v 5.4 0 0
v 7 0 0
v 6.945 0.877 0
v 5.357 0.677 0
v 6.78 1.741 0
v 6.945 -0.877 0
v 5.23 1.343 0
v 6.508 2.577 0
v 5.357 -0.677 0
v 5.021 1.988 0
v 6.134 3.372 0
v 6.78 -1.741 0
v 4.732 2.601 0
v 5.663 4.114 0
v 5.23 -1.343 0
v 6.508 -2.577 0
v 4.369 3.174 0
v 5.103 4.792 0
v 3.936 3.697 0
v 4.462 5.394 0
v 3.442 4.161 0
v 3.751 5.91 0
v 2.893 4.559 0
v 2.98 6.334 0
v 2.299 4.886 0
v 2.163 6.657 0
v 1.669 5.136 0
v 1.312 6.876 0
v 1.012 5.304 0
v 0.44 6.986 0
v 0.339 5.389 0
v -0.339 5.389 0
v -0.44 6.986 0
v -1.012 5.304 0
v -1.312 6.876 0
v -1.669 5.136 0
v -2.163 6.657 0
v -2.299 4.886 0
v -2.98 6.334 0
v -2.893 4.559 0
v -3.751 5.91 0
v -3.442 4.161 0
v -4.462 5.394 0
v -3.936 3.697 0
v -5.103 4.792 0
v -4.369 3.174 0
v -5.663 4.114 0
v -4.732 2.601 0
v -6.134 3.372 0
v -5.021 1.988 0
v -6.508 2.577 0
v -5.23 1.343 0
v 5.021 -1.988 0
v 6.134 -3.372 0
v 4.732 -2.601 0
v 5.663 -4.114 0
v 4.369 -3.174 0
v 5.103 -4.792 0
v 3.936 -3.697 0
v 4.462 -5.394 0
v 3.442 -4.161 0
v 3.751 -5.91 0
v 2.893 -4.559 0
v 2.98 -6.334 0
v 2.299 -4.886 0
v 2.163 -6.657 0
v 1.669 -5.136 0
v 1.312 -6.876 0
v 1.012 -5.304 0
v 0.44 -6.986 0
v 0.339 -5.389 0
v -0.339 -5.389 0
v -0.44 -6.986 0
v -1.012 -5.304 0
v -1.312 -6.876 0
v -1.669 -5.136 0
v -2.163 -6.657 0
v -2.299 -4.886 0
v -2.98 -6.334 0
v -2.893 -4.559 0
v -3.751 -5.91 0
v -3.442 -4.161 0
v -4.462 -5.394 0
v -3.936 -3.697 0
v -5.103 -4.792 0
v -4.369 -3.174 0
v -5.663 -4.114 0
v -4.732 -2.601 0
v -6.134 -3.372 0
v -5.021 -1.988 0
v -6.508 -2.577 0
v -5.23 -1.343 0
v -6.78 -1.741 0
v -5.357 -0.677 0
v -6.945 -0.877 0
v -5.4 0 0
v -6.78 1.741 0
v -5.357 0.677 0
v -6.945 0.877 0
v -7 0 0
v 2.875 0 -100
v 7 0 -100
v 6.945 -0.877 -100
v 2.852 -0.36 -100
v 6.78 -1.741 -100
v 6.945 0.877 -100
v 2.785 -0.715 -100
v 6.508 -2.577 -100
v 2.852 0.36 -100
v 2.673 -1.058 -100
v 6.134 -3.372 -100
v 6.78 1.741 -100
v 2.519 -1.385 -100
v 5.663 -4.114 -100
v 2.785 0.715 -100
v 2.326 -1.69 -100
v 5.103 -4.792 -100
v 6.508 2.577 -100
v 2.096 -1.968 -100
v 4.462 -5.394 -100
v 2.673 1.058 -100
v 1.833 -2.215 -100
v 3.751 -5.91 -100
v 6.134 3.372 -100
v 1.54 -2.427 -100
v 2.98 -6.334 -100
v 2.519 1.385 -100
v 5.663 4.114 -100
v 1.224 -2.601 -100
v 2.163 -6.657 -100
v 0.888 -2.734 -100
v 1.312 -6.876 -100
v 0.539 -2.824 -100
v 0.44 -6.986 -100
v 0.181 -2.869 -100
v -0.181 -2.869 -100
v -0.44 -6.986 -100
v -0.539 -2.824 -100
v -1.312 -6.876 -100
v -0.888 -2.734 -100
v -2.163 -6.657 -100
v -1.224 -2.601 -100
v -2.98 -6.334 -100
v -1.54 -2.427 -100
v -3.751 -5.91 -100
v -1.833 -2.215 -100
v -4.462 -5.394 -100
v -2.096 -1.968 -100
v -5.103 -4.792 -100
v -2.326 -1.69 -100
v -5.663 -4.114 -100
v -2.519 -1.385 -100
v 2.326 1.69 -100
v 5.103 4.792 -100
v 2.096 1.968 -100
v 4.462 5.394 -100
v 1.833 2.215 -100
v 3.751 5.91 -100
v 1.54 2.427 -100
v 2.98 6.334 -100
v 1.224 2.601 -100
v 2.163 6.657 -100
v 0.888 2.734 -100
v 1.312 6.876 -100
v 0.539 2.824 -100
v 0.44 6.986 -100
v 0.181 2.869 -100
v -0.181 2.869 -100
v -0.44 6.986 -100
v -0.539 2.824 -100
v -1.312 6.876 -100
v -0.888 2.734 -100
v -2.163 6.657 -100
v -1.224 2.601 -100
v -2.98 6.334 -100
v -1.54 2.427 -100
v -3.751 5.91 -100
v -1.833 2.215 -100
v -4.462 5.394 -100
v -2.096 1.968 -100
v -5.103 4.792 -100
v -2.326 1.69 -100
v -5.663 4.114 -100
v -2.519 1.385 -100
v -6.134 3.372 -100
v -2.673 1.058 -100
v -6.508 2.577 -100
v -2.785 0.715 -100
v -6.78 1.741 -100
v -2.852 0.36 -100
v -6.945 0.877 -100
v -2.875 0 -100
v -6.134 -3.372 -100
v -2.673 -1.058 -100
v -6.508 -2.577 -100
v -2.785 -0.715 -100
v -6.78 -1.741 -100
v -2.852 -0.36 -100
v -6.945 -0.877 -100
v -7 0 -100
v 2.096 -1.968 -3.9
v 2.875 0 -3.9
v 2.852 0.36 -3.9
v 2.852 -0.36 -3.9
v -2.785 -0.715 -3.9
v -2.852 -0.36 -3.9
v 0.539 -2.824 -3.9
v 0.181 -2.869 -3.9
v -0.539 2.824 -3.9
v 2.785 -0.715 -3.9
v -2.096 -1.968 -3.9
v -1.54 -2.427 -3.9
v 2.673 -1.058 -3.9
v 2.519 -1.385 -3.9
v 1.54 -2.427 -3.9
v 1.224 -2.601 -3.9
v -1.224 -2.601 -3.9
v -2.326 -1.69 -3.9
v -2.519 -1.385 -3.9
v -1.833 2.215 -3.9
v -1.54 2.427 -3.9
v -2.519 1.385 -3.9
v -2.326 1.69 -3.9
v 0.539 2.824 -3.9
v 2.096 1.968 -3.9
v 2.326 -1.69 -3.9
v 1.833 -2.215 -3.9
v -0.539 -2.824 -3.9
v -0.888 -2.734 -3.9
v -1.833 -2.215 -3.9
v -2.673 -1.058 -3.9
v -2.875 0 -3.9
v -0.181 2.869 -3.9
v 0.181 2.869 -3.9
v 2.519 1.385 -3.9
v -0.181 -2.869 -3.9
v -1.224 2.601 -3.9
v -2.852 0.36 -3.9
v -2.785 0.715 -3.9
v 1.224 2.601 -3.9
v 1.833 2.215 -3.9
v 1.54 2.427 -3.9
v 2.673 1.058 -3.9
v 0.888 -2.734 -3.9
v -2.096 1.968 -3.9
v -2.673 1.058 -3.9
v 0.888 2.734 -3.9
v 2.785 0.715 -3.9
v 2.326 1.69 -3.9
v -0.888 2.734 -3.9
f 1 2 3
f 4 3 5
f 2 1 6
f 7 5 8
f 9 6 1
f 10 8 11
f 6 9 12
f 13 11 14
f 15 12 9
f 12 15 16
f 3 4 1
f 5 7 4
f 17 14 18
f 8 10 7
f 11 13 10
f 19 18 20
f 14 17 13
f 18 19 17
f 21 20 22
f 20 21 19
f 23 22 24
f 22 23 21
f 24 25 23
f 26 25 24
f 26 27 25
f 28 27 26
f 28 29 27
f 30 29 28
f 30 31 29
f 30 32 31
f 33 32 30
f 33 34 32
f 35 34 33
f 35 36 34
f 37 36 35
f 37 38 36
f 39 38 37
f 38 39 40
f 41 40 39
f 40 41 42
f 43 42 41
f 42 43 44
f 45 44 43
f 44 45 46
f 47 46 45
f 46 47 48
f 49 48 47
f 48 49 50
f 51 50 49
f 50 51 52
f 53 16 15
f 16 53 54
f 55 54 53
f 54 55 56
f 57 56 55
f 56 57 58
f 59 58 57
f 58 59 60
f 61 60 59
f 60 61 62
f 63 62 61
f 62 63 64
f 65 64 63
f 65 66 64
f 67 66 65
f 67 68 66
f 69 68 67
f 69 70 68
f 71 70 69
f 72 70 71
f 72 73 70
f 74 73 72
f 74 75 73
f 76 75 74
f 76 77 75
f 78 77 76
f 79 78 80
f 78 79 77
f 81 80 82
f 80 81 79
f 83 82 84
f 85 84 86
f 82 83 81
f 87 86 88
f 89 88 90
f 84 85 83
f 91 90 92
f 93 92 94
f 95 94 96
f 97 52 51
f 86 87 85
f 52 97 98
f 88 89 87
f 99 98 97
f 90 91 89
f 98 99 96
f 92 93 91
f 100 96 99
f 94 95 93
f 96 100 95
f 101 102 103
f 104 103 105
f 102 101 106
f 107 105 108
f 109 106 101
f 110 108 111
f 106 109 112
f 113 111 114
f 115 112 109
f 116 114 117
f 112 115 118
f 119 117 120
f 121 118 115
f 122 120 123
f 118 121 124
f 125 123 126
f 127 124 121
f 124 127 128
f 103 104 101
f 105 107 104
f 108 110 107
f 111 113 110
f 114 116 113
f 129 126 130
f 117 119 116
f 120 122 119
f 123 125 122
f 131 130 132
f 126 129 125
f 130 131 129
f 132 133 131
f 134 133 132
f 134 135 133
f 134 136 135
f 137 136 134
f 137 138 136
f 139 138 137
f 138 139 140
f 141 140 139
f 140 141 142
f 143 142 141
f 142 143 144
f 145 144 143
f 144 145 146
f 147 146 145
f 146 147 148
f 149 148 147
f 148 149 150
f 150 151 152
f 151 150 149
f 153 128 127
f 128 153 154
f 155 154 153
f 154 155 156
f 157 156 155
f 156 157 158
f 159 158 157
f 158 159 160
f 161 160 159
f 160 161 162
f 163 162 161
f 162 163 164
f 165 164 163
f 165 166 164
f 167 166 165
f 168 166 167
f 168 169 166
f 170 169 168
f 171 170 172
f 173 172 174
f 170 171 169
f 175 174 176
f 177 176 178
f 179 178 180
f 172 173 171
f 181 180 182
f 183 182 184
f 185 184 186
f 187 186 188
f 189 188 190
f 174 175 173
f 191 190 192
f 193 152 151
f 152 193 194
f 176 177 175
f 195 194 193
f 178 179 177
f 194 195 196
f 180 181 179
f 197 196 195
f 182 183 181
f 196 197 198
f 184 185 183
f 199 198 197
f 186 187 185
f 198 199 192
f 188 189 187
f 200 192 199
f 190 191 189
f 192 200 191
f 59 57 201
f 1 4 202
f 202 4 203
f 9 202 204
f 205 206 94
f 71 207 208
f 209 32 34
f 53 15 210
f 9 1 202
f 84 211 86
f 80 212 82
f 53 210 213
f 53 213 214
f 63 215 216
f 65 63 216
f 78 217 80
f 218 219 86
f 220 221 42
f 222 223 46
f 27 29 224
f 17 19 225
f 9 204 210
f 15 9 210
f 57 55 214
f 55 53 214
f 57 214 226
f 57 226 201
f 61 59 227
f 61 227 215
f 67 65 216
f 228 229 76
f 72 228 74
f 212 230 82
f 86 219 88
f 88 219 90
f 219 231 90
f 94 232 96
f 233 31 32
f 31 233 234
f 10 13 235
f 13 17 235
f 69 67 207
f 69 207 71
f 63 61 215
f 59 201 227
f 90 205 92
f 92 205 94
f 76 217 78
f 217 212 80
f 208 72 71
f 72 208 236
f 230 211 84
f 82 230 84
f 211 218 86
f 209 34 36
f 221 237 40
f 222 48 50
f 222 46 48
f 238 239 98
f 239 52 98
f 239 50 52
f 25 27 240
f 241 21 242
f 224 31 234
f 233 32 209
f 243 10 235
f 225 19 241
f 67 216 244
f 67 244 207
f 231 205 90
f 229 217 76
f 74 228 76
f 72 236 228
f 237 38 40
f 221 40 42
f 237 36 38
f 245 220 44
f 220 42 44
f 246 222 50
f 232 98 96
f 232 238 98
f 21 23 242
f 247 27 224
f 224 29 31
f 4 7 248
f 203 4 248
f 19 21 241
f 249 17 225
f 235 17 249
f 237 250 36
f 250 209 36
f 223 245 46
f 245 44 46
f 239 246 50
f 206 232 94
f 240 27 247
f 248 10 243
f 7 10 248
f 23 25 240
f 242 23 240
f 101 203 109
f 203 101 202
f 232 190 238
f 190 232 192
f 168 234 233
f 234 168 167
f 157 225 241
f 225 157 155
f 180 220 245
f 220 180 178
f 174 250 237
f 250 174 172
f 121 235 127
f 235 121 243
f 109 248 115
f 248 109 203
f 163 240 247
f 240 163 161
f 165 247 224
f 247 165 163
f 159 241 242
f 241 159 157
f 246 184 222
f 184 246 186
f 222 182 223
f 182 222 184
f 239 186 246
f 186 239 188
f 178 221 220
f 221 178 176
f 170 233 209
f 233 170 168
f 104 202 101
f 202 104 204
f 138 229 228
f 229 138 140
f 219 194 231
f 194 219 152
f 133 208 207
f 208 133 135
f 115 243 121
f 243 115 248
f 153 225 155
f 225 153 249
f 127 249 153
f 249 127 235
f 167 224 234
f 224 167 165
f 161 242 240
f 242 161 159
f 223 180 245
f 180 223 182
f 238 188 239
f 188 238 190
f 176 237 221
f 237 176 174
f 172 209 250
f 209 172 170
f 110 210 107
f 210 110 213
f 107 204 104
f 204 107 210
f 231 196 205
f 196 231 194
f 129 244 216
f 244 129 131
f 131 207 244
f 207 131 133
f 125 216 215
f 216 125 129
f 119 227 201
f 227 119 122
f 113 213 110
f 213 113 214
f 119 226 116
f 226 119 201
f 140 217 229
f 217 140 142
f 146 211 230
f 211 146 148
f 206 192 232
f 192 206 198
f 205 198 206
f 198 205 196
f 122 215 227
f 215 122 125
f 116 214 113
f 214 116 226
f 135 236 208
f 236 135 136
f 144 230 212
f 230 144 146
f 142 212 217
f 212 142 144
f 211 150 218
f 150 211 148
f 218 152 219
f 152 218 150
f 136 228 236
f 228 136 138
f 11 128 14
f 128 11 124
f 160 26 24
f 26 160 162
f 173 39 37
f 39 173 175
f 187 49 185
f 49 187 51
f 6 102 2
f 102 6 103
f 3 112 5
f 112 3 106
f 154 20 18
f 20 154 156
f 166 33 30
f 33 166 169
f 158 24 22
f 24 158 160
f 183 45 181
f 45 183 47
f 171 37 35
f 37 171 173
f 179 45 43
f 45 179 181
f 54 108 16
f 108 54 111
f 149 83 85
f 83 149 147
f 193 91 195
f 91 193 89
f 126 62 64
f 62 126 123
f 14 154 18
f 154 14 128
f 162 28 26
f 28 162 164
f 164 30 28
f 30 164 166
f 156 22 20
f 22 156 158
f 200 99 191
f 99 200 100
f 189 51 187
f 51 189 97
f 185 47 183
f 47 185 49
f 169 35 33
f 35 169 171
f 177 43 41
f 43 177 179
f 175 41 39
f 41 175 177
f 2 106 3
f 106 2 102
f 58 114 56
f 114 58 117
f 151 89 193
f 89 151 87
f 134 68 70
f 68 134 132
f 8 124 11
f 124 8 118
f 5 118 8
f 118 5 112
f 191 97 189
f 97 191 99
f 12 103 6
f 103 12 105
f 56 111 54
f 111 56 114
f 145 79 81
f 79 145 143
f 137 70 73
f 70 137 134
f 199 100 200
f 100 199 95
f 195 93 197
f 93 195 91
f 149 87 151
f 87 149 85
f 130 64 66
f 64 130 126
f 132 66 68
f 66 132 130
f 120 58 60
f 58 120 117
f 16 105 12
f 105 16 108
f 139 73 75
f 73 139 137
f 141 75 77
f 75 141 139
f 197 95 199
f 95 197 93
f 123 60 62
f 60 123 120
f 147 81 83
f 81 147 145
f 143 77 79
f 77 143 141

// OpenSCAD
$fn = 50;


difference() {
	union() {
		translate(v = [0, 0, -100.0000000000]) {
			cylinder(h = 100, r = 7.0000000000);
		}
		cylinder(h = 0, r = 13.0000000000);
	}
	union() {
		translate(v = [0, 0, 0]) {
			rotate(a = [0, 0, 0]) {
				difference() {
					union() {
						#translate(v = [0, 0, -100.0000000000]) {
							cylinder(h = 100, r = 2.6000000000);
						}
						#translate(v = [0, 0, -3.9000000000]) {
							cylinder(h = 3.9000000000, r1 = 2.8750000000, r2 = 5.4000000000);
						}
						#translate(v = [0, 0, -100.0000000000]) {
							cylinder(h = 100, r = 2.8750000000);
						}
						#translate(v = [0, 0, -100.0000000000]) {
							cylinder(h = 100, r = 2.6000000000);
						}
					}
					union();
				}
			}
		}
	}
}
